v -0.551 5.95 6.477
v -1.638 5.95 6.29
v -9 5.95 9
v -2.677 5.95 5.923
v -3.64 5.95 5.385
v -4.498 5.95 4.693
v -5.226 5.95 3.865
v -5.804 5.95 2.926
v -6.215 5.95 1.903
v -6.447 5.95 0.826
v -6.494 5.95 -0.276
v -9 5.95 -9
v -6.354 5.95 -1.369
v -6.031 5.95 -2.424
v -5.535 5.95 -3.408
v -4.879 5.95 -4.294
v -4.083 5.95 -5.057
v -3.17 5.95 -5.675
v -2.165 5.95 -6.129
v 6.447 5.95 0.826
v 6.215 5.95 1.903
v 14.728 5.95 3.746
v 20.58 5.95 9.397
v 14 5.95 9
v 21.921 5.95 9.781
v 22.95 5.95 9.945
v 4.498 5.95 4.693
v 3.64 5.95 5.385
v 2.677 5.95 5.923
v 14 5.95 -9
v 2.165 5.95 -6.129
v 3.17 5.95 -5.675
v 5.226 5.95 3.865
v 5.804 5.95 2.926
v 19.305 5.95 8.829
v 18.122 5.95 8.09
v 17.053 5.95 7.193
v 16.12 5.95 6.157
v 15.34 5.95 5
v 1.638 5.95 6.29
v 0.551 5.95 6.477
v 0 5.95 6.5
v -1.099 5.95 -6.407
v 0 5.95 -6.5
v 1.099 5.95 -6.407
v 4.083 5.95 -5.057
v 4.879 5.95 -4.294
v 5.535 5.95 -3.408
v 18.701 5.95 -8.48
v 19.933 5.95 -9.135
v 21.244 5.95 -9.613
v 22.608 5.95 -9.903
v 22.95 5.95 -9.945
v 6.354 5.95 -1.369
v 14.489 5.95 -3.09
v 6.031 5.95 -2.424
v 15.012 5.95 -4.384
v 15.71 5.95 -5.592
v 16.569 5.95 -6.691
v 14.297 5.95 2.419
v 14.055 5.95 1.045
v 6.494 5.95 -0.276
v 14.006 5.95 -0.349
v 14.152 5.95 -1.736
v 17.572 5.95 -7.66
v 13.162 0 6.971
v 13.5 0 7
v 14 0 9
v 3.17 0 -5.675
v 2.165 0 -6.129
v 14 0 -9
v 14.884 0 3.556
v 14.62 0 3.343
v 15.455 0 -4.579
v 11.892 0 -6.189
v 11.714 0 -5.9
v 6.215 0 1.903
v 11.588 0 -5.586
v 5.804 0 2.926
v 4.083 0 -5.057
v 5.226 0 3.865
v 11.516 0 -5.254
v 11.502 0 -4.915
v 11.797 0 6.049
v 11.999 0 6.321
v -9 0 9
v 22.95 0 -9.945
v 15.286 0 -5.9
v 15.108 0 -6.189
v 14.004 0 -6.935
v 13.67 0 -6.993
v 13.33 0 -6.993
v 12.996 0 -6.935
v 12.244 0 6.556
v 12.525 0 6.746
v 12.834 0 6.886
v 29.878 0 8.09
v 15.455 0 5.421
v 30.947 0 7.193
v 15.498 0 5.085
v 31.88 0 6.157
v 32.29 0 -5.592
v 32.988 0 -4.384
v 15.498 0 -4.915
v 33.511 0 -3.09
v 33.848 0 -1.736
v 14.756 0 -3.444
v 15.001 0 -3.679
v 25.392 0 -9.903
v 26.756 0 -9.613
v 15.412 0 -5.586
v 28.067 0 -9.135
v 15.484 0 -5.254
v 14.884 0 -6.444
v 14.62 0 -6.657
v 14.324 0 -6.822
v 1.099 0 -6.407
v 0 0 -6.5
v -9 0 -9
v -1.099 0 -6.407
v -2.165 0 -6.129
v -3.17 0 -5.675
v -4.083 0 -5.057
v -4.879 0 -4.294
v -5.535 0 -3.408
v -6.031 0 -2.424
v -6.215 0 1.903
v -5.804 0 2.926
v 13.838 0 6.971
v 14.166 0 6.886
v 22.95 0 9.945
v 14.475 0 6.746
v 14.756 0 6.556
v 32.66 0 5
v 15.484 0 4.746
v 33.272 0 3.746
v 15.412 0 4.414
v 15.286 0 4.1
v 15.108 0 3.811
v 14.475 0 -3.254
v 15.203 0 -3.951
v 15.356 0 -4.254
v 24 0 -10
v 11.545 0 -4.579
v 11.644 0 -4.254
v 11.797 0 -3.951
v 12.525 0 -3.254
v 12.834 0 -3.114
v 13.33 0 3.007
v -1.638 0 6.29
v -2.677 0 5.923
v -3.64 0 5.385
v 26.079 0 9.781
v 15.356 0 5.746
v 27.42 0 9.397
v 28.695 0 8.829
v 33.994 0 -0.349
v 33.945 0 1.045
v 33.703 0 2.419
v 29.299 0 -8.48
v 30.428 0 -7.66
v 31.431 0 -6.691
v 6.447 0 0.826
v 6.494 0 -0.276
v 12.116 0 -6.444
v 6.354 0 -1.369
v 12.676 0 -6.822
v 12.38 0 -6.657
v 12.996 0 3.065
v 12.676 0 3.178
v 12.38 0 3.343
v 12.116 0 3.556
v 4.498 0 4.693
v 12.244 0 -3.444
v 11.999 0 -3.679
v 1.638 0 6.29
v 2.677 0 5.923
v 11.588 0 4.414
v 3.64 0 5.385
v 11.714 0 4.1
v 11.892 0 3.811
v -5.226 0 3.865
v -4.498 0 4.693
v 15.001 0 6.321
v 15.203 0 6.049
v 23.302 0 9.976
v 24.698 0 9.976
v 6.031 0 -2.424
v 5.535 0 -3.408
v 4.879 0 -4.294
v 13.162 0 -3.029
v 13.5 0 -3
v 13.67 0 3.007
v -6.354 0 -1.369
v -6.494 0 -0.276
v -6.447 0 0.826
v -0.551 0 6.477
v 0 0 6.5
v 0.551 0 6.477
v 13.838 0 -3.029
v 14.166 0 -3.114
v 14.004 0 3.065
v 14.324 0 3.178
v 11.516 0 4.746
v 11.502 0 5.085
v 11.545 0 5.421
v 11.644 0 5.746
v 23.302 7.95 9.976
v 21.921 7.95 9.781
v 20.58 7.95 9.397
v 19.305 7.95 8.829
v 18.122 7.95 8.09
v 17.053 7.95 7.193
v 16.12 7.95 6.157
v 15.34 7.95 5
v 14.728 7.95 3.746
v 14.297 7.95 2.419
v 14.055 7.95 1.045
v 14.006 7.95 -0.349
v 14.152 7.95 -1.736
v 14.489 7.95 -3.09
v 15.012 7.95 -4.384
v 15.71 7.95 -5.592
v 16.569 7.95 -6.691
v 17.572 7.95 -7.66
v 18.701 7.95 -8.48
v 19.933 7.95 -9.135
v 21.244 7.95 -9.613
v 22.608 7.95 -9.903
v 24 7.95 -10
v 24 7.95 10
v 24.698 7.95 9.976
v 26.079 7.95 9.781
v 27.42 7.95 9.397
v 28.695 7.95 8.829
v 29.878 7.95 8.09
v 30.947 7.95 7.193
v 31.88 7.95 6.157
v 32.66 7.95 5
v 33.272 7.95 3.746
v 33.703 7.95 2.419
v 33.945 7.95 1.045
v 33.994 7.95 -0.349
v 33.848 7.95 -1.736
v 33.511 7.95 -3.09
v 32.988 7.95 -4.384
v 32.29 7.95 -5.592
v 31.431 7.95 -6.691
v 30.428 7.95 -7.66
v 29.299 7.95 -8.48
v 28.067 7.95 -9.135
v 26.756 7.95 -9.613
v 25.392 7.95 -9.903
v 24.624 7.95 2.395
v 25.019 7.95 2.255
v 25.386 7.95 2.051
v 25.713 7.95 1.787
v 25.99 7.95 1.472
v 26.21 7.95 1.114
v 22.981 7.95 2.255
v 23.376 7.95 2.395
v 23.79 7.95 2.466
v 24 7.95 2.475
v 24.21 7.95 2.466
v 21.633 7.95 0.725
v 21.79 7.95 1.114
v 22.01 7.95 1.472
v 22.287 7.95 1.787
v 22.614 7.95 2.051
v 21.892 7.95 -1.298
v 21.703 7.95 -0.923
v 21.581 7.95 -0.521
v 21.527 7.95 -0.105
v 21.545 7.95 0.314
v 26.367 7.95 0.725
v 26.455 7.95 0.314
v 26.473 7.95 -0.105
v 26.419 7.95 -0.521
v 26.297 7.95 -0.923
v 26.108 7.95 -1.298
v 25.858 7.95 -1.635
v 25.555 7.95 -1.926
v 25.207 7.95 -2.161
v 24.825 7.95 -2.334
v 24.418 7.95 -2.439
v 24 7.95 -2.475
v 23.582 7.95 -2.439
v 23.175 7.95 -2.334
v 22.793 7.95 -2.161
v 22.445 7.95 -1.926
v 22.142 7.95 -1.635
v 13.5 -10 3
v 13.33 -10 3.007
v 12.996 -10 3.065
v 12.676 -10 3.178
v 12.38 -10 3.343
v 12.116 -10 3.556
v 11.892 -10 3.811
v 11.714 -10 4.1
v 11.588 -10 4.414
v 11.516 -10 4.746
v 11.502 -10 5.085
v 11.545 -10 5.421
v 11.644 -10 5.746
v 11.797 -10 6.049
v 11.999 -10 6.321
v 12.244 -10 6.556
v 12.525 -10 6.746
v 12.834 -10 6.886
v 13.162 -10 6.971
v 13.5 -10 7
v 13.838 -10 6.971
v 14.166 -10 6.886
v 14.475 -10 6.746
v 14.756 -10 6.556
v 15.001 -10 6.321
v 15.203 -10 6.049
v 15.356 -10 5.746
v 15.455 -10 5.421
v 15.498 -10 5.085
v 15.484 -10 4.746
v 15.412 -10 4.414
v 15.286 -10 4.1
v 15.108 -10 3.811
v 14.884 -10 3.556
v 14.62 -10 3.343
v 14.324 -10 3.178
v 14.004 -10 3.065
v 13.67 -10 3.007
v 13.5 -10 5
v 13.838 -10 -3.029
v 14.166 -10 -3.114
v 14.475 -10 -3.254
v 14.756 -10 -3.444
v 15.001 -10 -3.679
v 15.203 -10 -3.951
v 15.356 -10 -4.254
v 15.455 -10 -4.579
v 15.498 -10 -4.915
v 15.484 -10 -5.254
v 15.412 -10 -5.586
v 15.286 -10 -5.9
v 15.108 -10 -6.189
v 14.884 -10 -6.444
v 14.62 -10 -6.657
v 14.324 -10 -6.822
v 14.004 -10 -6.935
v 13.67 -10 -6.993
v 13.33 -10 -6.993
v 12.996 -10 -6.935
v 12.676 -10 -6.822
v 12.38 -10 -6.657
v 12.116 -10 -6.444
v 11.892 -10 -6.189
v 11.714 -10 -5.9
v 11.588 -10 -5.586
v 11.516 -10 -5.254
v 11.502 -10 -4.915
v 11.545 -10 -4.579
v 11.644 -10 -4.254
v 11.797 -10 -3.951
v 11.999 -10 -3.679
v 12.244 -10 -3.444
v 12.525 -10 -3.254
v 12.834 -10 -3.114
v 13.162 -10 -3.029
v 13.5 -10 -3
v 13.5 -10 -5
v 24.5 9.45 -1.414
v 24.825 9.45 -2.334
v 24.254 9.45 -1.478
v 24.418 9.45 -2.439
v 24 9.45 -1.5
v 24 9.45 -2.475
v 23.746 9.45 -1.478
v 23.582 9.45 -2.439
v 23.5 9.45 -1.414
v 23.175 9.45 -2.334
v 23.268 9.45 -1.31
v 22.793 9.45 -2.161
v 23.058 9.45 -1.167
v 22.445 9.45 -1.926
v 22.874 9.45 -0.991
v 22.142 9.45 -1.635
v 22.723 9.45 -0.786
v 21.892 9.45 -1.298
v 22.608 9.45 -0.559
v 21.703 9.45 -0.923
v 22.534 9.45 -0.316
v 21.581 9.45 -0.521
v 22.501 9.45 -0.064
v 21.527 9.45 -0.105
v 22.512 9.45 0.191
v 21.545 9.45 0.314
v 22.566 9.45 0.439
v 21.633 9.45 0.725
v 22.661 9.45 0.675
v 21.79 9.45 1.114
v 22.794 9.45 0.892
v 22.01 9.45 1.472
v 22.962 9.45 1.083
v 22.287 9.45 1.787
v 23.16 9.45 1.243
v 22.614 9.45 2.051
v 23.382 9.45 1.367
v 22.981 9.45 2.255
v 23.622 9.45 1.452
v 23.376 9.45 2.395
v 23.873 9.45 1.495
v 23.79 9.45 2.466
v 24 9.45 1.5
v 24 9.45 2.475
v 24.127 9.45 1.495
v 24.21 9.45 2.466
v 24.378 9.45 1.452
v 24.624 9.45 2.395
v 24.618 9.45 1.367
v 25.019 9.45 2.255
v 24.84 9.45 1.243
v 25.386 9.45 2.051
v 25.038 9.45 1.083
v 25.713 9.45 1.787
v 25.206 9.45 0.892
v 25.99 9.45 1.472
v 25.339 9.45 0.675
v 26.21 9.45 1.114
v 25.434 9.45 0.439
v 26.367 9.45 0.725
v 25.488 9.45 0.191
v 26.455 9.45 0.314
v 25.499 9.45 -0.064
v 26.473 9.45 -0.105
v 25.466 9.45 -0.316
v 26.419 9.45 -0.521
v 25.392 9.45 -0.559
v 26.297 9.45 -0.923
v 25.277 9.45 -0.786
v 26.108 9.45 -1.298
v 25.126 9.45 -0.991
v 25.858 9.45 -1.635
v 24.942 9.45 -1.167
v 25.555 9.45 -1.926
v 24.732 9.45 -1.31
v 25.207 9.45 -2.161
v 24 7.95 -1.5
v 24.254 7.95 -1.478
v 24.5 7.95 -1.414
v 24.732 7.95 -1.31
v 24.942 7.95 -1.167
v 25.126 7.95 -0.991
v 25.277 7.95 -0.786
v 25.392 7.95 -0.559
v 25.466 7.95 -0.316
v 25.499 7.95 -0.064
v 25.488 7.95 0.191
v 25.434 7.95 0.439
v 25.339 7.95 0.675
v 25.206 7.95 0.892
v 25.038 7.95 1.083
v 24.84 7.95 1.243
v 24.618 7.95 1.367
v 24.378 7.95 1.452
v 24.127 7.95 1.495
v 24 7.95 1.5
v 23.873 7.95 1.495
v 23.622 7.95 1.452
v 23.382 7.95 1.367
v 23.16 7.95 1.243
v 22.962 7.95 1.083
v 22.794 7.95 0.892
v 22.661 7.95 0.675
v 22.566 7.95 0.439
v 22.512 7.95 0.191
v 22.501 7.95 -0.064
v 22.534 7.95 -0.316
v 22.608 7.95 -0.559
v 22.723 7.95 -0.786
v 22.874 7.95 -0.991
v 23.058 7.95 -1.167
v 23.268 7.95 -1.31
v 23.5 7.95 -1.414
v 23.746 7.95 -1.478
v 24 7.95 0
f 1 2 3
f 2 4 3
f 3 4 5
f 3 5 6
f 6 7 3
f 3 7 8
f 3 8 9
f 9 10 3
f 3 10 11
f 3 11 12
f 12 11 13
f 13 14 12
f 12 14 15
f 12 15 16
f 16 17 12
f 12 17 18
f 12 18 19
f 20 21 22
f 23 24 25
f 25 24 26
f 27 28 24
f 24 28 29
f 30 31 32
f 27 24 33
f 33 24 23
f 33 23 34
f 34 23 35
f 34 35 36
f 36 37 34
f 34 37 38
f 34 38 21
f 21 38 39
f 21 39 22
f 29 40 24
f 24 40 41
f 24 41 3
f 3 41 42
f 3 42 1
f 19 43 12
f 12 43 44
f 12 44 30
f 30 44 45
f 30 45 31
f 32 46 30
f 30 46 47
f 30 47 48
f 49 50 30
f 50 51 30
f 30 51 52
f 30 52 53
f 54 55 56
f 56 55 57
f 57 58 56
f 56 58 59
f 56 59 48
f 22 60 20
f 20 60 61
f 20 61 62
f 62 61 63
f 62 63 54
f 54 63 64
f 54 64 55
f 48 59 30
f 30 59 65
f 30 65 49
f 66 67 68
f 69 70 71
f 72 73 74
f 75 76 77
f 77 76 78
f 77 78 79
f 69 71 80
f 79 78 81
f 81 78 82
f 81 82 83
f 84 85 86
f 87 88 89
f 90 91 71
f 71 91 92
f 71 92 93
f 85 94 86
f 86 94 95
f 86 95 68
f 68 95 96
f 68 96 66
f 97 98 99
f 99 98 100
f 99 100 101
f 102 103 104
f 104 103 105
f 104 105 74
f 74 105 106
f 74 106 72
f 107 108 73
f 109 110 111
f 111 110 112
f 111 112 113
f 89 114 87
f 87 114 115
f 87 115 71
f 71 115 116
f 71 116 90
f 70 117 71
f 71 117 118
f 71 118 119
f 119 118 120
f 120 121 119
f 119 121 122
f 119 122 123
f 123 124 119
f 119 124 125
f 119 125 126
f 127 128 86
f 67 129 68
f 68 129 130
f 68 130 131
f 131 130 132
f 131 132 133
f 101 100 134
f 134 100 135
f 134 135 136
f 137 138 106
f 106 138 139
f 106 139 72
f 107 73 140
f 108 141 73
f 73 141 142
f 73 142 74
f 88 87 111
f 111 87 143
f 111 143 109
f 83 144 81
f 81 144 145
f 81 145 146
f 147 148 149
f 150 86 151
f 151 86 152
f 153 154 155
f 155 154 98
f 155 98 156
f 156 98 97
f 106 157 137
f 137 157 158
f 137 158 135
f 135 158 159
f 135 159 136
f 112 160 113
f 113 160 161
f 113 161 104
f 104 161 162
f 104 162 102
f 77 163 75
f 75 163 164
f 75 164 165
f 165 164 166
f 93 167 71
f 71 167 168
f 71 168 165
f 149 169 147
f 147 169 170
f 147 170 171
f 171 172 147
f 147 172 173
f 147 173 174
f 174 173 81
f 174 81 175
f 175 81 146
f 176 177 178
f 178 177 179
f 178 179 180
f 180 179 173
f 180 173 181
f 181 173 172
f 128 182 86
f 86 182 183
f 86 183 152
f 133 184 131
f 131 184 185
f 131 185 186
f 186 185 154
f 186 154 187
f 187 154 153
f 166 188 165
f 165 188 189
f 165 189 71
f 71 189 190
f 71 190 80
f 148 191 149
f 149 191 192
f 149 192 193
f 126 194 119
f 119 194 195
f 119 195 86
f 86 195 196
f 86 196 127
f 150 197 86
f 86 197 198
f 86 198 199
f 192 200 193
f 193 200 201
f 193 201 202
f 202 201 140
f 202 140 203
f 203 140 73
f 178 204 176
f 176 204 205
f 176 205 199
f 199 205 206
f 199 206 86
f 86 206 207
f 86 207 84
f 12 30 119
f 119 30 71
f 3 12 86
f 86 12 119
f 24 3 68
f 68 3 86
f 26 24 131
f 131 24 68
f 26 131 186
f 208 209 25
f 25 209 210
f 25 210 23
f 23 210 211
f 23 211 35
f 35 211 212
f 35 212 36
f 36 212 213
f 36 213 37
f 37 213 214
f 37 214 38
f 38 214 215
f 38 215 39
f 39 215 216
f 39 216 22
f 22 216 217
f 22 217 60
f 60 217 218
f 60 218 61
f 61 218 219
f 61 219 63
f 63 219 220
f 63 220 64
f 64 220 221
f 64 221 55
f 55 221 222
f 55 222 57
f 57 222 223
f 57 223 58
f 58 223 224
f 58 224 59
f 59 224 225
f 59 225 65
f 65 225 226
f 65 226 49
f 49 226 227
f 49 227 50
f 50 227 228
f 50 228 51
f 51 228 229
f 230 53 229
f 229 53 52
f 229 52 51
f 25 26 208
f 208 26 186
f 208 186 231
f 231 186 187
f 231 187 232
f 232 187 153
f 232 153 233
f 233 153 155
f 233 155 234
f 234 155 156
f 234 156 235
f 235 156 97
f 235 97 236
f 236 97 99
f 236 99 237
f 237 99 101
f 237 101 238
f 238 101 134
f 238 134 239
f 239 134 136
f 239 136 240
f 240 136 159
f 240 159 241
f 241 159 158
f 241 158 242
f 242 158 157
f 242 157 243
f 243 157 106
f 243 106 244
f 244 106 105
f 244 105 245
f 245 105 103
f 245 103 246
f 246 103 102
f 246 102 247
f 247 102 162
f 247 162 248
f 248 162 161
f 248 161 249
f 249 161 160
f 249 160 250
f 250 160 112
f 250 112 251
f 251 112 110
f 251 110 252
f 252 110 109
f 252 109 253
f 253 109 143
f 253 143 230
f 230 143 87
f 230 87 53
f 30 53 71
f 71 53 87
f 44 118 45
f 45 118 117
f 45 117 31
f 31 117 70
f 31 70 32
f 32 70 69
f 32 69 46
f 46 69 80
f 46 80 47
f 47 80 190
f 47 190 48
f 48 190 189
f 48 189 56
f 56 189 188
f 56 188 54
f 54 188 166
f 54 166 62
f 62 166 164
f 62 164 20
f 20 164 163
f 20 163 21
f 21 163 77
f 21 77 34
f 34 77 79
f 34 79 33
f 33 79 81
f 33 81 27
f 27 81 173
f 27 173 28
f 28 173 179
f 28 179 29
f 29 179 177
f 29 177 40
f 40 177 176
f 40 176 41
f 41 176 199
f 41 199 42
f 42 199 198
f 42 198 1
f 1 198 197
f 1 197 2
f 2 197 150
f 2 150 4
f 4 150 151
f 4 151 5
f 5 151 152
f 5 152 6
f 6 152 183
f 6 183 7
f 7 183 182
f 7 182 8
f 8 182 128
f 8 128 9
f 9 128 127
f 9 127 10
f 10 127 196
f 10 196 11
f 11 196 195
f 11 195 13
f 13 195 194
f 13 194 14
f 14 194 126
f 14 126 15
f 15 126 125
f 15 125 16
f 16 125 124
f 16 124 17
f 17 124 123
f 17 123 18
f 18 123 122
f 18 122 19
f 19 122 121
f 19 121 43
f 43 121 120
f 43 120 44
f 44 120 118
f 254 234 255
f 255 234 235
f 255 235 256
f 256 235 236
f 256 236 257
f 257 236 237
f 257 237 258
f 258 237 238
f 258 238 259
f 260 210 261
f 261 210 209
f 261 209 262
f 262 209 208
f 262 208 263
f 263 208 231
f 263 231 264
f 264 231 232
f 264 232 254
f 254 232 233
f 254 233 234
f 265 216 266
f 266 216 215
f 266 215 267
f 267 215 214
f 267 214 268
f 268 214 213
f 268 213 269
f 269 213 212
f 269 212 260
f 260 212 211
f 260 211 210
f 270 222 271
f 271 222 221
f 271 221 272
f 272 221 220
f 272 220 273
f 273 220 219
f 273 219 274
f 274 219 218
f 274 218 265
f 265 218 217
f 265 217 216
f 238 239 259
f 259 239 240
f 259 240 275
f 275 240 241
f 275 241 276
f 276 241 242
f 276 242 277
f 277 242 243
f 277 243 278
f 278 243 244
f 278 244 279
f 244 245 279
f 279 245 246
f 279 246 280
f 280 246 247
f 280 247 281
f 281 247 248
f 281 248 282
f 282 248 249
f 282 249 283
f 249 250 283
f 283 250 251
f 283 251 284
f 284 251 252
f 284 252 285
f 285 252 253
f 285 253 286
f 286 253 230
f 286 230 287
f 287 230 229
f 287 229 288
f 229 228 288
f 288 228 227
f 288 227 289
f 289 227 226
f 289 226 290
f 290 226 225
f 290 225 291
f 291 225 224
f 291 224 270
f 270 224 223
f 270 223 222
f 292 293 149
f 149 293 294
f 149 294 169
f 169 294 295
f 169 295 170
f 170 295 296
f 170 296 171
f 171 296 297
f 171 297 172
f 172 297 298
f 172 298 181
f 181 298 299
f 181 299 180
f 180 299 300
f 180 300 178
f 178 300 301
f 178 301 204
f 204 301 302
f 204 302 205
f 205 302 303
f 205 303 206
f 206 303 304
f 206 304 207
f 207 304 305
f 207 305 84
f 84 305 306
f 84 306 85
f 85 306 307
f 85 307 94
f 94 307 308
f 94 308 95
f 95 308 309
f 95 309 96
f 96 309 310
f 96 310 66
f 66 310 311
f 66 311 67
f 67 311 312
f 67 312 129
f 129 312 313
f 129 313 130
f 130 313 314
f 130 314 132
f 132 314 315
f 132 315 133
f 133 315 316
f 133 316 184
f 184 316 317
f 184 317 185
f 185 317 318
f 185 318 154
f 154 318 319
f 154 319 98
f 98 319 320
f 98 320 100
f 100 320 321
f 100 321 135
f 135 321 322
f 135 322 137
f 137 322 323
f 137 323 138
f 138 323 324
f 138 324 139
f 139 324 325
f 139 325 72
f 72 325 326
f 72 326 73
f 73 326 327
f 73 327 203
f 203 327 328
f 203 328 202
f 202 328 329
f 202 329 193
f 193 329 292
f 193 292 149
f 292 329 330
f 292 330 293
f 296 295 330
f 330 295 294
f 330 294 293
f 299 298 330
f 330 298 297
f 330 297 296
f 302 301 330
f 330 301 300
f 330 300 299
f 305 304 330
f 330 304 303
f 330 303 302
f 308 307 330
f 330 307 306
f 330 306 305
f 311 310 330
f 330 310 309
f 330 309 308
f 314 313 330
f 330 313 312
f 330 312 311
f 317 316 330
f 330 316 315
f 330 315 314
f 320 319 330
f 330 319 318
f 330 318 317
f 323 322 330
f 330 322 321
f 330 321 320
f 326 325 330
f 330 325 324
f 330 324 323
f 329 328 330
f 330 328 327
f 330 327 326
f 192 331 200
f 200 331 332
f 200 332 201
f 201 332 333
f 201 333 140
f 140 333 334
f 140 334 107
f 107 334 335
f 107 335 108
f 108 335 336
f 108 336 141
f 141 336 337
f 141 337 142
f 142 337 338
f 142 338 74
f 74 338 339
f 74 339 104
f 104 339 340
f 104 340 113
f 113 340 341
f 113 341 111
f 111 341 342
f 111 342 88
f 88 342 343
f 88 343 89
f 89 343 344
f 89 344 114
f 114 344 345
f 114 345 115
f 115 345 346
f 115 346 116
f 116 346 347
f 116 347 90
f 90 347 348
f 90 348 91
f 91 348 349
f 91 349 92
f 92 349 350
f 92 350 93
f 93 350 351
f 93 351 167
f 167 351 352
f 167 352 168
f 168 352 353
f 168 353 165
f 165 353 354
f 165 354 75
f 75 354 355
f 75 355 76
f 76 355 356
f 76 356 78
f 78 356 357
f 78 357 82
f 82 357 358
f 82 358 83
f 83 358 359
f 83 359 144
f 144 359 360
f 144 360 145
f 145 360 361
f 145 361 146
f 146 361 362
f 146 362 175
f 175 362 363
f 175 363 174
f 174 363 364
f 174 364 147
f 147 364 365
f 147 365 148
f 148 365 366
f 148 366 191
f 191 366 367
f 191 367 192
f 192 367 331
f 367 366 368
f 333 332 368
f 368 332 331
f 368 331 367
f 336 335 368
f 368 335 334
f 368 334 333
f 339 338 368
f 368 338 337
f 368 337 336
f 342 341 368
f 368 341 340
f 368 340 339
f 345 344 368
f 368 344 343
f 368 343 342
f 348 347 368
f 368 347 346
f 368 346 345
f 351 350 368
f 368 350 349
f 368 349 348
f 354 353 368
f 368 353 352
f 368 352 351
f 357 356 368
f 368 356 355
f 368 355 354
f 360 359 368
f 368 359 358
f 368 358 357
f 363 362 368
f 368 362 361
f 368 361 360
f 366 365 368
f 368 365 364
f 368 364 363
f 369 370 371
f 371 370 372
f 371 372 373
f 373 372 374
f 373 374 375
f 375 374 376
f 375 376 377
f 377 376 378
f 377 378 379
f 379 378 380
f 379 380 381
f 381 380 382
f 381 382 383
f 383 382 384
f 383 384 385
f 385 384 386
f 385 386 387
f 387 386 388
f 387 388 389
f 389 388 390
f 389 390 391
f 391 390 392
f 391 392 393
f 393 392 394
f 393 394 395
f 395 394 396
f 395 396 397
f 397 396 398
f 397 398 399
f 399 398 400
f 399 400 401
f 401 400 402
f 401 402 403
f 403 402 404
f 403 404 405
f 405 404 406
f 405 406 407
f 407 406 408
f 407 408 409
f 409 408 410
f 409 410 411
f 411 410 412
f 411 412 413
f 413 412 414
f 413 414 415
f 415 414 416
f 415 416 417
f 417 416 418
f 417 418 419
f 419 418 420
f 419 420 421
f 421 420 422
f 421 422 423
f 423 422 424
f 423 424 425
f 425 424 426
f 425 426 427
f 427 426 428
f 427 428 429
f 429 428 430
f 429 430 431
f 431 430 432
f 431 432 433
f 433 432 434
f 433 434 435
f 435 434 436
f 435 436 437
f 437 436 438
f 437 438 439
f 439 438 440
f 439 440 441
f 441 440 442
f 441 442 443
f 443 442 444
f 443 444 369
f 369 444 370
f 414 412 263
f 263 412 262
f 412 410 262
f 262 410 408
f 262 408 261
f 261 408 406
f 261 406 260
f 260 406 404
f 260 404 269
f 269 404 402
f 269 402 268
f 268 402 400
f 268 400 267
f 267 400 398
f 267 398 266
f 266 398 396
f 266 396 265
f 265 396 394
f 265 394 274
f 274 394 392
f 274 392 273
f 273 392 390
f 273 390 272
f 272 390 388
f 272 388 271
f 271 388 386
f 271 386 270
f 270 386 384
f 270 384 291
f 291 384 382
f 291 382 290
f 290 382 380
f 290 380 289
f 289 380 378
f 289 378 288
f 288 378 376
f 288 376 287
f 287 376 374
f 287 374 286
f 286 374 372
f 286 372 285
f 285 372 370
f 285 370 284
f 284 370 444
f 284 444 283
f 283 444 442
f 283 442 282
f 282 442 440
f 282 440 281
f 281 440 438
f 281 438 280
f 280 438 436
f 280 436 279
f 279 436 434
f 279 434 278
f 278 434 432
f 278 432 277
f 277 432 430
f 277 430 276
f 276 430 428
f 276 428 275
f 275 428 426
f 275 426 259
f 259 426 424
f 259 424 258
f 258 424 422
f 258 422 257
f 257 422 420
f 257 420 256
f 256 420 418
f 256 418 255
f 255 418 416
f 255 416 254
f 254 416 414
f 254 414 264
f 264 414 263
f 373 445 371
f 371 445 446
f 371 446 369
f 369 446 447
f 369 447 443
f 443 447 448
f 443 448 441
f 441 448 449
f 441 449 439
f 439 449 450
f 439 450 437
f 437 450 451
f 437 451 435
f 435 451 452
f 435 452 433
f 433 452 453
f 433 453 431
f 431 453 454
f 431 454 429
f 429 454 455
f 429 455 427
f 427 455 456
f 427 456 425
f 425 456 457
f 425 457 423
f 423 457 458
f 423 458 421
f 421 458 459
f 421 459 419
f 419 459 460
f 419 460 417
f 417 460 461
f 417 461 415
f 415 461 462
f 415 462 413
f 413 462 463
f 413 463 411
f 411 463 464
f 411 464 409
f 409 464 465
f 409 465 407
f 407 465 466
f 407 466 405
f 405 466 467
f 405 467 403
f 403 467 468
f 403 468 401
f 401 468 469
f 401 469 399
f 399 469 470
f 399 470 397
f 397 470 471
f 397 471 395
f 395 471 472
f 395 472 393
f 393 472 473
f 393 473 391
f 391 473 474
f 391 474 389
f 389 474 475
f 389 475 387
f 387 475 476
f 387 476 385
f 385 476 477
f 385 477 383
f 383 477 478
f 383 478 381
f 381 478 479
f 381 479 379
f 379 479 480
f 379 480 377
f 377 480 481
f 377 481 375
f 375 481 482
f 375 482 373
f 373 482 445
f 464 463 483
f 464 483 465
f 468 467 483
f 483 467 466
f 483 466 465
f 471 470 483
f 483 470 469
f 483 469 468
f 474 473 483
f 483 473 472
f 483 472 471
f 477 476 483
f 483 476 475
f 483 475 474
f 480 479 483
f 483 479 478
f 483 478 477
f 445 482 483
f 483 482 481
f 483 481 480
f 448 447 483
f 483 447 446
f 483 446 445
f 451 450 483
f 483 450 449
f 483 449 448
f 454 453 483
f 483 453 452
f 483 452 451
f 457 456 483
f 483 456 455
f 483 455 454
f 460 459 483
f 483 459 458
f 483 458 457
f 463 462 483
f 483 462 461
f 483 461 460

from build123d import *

# Parameters (mm, degrees)
BOSS_EXTRUDE2_OUTLINE_R = 6.5
BOSS_EXTRUDE2_DEPTH     = 5.95
SKETCH3_R               = 10
BOSS_EXTRUDE3_DEPTH     = 2
SKETCH4_R               = 2
BOSS_EXTRUDE4_DEPTH     = 10
SKETCH5_R               = 2.475
SKETCH5_R_2             = 1.5
BOSS_EXTRUDE5_DEPTH     = 1.5


# Read off the part's stored shape, not the designer's step: Boss-Extrude2
with BuildPart() as part:
    # Boss-Extrude2 outline → Boss-Extrude2 (new body)
    with BuildSketch(Plane(origin=(0, 0, 0), x_dir=(1, 0, 0), z_dir=(0, 1, 0))):
        with BuildLine():
            Line((14, 9), (-9, 9))
            Line((-9, 9), (-9, -9))
            Line((-9, -9), (14, -9))
            Line((14, -9), (22.950276243, -9.944751381))
            ThreePointArc((22.950276243, -9.944751381), (34, 0), (22.950276243, 9.944751381))
            Line((22.950276243, 9.944751381), (14, 9))
        make_face()
        Circle(BOSS_EXTRUDE2_OUTLINE_R, mode=Mode.SUBTRACT)
    extrude(amount=BOSS_EXTRUDE2_DEPTH)

    # Sketch3 → Boss-Extrude3 (add)
    with BuildSketch(Plane(origin=(0, 5.95, 0), x_dir=(1, 0, 0), z_dir=(0, 1, 0))):
        with Locations(Location((24, 0, 0), (0, 0, 96.025575008))):
            Circle(SKETCH3_R)
    extrude(amount=BOSS_EXTRUDE3_DEPTH)

    # Sketch4 → Boss-Extrude4 (add)
    with BuildSketch(Plane.XZ):
        with Locations(Location((13.5, 5, 0), (0, 0, 90))):
            Circle(SKETCH4_R)
        with Locations(Location((13.5, -5, 0), (0, 0, 90))):
            Circle(SKETCH4_R)
    extrude(amount=BOSS_EXTRUDE4_DEPTH)

    # Sketch5 → Boss-Extrude5 (add)
    with BuildSketch(Plane(origin=(0, 7.95, 0), x_dir=(1, 0, 0), z_dir=(0, 1, 0))):
        with Locations(Location((24, 0, 0), (0, 0, 270))):
            Circle(SKETCH5_R)
        with Locations(Location((24, 0, 0), (0, 0, 270))):
            Circle(SKETCH5_R_2, mode=Mode.SUBTRACT)
    extrude(amount=BOSS_EXTRUDE5_DEPTH)


solid = part.part
